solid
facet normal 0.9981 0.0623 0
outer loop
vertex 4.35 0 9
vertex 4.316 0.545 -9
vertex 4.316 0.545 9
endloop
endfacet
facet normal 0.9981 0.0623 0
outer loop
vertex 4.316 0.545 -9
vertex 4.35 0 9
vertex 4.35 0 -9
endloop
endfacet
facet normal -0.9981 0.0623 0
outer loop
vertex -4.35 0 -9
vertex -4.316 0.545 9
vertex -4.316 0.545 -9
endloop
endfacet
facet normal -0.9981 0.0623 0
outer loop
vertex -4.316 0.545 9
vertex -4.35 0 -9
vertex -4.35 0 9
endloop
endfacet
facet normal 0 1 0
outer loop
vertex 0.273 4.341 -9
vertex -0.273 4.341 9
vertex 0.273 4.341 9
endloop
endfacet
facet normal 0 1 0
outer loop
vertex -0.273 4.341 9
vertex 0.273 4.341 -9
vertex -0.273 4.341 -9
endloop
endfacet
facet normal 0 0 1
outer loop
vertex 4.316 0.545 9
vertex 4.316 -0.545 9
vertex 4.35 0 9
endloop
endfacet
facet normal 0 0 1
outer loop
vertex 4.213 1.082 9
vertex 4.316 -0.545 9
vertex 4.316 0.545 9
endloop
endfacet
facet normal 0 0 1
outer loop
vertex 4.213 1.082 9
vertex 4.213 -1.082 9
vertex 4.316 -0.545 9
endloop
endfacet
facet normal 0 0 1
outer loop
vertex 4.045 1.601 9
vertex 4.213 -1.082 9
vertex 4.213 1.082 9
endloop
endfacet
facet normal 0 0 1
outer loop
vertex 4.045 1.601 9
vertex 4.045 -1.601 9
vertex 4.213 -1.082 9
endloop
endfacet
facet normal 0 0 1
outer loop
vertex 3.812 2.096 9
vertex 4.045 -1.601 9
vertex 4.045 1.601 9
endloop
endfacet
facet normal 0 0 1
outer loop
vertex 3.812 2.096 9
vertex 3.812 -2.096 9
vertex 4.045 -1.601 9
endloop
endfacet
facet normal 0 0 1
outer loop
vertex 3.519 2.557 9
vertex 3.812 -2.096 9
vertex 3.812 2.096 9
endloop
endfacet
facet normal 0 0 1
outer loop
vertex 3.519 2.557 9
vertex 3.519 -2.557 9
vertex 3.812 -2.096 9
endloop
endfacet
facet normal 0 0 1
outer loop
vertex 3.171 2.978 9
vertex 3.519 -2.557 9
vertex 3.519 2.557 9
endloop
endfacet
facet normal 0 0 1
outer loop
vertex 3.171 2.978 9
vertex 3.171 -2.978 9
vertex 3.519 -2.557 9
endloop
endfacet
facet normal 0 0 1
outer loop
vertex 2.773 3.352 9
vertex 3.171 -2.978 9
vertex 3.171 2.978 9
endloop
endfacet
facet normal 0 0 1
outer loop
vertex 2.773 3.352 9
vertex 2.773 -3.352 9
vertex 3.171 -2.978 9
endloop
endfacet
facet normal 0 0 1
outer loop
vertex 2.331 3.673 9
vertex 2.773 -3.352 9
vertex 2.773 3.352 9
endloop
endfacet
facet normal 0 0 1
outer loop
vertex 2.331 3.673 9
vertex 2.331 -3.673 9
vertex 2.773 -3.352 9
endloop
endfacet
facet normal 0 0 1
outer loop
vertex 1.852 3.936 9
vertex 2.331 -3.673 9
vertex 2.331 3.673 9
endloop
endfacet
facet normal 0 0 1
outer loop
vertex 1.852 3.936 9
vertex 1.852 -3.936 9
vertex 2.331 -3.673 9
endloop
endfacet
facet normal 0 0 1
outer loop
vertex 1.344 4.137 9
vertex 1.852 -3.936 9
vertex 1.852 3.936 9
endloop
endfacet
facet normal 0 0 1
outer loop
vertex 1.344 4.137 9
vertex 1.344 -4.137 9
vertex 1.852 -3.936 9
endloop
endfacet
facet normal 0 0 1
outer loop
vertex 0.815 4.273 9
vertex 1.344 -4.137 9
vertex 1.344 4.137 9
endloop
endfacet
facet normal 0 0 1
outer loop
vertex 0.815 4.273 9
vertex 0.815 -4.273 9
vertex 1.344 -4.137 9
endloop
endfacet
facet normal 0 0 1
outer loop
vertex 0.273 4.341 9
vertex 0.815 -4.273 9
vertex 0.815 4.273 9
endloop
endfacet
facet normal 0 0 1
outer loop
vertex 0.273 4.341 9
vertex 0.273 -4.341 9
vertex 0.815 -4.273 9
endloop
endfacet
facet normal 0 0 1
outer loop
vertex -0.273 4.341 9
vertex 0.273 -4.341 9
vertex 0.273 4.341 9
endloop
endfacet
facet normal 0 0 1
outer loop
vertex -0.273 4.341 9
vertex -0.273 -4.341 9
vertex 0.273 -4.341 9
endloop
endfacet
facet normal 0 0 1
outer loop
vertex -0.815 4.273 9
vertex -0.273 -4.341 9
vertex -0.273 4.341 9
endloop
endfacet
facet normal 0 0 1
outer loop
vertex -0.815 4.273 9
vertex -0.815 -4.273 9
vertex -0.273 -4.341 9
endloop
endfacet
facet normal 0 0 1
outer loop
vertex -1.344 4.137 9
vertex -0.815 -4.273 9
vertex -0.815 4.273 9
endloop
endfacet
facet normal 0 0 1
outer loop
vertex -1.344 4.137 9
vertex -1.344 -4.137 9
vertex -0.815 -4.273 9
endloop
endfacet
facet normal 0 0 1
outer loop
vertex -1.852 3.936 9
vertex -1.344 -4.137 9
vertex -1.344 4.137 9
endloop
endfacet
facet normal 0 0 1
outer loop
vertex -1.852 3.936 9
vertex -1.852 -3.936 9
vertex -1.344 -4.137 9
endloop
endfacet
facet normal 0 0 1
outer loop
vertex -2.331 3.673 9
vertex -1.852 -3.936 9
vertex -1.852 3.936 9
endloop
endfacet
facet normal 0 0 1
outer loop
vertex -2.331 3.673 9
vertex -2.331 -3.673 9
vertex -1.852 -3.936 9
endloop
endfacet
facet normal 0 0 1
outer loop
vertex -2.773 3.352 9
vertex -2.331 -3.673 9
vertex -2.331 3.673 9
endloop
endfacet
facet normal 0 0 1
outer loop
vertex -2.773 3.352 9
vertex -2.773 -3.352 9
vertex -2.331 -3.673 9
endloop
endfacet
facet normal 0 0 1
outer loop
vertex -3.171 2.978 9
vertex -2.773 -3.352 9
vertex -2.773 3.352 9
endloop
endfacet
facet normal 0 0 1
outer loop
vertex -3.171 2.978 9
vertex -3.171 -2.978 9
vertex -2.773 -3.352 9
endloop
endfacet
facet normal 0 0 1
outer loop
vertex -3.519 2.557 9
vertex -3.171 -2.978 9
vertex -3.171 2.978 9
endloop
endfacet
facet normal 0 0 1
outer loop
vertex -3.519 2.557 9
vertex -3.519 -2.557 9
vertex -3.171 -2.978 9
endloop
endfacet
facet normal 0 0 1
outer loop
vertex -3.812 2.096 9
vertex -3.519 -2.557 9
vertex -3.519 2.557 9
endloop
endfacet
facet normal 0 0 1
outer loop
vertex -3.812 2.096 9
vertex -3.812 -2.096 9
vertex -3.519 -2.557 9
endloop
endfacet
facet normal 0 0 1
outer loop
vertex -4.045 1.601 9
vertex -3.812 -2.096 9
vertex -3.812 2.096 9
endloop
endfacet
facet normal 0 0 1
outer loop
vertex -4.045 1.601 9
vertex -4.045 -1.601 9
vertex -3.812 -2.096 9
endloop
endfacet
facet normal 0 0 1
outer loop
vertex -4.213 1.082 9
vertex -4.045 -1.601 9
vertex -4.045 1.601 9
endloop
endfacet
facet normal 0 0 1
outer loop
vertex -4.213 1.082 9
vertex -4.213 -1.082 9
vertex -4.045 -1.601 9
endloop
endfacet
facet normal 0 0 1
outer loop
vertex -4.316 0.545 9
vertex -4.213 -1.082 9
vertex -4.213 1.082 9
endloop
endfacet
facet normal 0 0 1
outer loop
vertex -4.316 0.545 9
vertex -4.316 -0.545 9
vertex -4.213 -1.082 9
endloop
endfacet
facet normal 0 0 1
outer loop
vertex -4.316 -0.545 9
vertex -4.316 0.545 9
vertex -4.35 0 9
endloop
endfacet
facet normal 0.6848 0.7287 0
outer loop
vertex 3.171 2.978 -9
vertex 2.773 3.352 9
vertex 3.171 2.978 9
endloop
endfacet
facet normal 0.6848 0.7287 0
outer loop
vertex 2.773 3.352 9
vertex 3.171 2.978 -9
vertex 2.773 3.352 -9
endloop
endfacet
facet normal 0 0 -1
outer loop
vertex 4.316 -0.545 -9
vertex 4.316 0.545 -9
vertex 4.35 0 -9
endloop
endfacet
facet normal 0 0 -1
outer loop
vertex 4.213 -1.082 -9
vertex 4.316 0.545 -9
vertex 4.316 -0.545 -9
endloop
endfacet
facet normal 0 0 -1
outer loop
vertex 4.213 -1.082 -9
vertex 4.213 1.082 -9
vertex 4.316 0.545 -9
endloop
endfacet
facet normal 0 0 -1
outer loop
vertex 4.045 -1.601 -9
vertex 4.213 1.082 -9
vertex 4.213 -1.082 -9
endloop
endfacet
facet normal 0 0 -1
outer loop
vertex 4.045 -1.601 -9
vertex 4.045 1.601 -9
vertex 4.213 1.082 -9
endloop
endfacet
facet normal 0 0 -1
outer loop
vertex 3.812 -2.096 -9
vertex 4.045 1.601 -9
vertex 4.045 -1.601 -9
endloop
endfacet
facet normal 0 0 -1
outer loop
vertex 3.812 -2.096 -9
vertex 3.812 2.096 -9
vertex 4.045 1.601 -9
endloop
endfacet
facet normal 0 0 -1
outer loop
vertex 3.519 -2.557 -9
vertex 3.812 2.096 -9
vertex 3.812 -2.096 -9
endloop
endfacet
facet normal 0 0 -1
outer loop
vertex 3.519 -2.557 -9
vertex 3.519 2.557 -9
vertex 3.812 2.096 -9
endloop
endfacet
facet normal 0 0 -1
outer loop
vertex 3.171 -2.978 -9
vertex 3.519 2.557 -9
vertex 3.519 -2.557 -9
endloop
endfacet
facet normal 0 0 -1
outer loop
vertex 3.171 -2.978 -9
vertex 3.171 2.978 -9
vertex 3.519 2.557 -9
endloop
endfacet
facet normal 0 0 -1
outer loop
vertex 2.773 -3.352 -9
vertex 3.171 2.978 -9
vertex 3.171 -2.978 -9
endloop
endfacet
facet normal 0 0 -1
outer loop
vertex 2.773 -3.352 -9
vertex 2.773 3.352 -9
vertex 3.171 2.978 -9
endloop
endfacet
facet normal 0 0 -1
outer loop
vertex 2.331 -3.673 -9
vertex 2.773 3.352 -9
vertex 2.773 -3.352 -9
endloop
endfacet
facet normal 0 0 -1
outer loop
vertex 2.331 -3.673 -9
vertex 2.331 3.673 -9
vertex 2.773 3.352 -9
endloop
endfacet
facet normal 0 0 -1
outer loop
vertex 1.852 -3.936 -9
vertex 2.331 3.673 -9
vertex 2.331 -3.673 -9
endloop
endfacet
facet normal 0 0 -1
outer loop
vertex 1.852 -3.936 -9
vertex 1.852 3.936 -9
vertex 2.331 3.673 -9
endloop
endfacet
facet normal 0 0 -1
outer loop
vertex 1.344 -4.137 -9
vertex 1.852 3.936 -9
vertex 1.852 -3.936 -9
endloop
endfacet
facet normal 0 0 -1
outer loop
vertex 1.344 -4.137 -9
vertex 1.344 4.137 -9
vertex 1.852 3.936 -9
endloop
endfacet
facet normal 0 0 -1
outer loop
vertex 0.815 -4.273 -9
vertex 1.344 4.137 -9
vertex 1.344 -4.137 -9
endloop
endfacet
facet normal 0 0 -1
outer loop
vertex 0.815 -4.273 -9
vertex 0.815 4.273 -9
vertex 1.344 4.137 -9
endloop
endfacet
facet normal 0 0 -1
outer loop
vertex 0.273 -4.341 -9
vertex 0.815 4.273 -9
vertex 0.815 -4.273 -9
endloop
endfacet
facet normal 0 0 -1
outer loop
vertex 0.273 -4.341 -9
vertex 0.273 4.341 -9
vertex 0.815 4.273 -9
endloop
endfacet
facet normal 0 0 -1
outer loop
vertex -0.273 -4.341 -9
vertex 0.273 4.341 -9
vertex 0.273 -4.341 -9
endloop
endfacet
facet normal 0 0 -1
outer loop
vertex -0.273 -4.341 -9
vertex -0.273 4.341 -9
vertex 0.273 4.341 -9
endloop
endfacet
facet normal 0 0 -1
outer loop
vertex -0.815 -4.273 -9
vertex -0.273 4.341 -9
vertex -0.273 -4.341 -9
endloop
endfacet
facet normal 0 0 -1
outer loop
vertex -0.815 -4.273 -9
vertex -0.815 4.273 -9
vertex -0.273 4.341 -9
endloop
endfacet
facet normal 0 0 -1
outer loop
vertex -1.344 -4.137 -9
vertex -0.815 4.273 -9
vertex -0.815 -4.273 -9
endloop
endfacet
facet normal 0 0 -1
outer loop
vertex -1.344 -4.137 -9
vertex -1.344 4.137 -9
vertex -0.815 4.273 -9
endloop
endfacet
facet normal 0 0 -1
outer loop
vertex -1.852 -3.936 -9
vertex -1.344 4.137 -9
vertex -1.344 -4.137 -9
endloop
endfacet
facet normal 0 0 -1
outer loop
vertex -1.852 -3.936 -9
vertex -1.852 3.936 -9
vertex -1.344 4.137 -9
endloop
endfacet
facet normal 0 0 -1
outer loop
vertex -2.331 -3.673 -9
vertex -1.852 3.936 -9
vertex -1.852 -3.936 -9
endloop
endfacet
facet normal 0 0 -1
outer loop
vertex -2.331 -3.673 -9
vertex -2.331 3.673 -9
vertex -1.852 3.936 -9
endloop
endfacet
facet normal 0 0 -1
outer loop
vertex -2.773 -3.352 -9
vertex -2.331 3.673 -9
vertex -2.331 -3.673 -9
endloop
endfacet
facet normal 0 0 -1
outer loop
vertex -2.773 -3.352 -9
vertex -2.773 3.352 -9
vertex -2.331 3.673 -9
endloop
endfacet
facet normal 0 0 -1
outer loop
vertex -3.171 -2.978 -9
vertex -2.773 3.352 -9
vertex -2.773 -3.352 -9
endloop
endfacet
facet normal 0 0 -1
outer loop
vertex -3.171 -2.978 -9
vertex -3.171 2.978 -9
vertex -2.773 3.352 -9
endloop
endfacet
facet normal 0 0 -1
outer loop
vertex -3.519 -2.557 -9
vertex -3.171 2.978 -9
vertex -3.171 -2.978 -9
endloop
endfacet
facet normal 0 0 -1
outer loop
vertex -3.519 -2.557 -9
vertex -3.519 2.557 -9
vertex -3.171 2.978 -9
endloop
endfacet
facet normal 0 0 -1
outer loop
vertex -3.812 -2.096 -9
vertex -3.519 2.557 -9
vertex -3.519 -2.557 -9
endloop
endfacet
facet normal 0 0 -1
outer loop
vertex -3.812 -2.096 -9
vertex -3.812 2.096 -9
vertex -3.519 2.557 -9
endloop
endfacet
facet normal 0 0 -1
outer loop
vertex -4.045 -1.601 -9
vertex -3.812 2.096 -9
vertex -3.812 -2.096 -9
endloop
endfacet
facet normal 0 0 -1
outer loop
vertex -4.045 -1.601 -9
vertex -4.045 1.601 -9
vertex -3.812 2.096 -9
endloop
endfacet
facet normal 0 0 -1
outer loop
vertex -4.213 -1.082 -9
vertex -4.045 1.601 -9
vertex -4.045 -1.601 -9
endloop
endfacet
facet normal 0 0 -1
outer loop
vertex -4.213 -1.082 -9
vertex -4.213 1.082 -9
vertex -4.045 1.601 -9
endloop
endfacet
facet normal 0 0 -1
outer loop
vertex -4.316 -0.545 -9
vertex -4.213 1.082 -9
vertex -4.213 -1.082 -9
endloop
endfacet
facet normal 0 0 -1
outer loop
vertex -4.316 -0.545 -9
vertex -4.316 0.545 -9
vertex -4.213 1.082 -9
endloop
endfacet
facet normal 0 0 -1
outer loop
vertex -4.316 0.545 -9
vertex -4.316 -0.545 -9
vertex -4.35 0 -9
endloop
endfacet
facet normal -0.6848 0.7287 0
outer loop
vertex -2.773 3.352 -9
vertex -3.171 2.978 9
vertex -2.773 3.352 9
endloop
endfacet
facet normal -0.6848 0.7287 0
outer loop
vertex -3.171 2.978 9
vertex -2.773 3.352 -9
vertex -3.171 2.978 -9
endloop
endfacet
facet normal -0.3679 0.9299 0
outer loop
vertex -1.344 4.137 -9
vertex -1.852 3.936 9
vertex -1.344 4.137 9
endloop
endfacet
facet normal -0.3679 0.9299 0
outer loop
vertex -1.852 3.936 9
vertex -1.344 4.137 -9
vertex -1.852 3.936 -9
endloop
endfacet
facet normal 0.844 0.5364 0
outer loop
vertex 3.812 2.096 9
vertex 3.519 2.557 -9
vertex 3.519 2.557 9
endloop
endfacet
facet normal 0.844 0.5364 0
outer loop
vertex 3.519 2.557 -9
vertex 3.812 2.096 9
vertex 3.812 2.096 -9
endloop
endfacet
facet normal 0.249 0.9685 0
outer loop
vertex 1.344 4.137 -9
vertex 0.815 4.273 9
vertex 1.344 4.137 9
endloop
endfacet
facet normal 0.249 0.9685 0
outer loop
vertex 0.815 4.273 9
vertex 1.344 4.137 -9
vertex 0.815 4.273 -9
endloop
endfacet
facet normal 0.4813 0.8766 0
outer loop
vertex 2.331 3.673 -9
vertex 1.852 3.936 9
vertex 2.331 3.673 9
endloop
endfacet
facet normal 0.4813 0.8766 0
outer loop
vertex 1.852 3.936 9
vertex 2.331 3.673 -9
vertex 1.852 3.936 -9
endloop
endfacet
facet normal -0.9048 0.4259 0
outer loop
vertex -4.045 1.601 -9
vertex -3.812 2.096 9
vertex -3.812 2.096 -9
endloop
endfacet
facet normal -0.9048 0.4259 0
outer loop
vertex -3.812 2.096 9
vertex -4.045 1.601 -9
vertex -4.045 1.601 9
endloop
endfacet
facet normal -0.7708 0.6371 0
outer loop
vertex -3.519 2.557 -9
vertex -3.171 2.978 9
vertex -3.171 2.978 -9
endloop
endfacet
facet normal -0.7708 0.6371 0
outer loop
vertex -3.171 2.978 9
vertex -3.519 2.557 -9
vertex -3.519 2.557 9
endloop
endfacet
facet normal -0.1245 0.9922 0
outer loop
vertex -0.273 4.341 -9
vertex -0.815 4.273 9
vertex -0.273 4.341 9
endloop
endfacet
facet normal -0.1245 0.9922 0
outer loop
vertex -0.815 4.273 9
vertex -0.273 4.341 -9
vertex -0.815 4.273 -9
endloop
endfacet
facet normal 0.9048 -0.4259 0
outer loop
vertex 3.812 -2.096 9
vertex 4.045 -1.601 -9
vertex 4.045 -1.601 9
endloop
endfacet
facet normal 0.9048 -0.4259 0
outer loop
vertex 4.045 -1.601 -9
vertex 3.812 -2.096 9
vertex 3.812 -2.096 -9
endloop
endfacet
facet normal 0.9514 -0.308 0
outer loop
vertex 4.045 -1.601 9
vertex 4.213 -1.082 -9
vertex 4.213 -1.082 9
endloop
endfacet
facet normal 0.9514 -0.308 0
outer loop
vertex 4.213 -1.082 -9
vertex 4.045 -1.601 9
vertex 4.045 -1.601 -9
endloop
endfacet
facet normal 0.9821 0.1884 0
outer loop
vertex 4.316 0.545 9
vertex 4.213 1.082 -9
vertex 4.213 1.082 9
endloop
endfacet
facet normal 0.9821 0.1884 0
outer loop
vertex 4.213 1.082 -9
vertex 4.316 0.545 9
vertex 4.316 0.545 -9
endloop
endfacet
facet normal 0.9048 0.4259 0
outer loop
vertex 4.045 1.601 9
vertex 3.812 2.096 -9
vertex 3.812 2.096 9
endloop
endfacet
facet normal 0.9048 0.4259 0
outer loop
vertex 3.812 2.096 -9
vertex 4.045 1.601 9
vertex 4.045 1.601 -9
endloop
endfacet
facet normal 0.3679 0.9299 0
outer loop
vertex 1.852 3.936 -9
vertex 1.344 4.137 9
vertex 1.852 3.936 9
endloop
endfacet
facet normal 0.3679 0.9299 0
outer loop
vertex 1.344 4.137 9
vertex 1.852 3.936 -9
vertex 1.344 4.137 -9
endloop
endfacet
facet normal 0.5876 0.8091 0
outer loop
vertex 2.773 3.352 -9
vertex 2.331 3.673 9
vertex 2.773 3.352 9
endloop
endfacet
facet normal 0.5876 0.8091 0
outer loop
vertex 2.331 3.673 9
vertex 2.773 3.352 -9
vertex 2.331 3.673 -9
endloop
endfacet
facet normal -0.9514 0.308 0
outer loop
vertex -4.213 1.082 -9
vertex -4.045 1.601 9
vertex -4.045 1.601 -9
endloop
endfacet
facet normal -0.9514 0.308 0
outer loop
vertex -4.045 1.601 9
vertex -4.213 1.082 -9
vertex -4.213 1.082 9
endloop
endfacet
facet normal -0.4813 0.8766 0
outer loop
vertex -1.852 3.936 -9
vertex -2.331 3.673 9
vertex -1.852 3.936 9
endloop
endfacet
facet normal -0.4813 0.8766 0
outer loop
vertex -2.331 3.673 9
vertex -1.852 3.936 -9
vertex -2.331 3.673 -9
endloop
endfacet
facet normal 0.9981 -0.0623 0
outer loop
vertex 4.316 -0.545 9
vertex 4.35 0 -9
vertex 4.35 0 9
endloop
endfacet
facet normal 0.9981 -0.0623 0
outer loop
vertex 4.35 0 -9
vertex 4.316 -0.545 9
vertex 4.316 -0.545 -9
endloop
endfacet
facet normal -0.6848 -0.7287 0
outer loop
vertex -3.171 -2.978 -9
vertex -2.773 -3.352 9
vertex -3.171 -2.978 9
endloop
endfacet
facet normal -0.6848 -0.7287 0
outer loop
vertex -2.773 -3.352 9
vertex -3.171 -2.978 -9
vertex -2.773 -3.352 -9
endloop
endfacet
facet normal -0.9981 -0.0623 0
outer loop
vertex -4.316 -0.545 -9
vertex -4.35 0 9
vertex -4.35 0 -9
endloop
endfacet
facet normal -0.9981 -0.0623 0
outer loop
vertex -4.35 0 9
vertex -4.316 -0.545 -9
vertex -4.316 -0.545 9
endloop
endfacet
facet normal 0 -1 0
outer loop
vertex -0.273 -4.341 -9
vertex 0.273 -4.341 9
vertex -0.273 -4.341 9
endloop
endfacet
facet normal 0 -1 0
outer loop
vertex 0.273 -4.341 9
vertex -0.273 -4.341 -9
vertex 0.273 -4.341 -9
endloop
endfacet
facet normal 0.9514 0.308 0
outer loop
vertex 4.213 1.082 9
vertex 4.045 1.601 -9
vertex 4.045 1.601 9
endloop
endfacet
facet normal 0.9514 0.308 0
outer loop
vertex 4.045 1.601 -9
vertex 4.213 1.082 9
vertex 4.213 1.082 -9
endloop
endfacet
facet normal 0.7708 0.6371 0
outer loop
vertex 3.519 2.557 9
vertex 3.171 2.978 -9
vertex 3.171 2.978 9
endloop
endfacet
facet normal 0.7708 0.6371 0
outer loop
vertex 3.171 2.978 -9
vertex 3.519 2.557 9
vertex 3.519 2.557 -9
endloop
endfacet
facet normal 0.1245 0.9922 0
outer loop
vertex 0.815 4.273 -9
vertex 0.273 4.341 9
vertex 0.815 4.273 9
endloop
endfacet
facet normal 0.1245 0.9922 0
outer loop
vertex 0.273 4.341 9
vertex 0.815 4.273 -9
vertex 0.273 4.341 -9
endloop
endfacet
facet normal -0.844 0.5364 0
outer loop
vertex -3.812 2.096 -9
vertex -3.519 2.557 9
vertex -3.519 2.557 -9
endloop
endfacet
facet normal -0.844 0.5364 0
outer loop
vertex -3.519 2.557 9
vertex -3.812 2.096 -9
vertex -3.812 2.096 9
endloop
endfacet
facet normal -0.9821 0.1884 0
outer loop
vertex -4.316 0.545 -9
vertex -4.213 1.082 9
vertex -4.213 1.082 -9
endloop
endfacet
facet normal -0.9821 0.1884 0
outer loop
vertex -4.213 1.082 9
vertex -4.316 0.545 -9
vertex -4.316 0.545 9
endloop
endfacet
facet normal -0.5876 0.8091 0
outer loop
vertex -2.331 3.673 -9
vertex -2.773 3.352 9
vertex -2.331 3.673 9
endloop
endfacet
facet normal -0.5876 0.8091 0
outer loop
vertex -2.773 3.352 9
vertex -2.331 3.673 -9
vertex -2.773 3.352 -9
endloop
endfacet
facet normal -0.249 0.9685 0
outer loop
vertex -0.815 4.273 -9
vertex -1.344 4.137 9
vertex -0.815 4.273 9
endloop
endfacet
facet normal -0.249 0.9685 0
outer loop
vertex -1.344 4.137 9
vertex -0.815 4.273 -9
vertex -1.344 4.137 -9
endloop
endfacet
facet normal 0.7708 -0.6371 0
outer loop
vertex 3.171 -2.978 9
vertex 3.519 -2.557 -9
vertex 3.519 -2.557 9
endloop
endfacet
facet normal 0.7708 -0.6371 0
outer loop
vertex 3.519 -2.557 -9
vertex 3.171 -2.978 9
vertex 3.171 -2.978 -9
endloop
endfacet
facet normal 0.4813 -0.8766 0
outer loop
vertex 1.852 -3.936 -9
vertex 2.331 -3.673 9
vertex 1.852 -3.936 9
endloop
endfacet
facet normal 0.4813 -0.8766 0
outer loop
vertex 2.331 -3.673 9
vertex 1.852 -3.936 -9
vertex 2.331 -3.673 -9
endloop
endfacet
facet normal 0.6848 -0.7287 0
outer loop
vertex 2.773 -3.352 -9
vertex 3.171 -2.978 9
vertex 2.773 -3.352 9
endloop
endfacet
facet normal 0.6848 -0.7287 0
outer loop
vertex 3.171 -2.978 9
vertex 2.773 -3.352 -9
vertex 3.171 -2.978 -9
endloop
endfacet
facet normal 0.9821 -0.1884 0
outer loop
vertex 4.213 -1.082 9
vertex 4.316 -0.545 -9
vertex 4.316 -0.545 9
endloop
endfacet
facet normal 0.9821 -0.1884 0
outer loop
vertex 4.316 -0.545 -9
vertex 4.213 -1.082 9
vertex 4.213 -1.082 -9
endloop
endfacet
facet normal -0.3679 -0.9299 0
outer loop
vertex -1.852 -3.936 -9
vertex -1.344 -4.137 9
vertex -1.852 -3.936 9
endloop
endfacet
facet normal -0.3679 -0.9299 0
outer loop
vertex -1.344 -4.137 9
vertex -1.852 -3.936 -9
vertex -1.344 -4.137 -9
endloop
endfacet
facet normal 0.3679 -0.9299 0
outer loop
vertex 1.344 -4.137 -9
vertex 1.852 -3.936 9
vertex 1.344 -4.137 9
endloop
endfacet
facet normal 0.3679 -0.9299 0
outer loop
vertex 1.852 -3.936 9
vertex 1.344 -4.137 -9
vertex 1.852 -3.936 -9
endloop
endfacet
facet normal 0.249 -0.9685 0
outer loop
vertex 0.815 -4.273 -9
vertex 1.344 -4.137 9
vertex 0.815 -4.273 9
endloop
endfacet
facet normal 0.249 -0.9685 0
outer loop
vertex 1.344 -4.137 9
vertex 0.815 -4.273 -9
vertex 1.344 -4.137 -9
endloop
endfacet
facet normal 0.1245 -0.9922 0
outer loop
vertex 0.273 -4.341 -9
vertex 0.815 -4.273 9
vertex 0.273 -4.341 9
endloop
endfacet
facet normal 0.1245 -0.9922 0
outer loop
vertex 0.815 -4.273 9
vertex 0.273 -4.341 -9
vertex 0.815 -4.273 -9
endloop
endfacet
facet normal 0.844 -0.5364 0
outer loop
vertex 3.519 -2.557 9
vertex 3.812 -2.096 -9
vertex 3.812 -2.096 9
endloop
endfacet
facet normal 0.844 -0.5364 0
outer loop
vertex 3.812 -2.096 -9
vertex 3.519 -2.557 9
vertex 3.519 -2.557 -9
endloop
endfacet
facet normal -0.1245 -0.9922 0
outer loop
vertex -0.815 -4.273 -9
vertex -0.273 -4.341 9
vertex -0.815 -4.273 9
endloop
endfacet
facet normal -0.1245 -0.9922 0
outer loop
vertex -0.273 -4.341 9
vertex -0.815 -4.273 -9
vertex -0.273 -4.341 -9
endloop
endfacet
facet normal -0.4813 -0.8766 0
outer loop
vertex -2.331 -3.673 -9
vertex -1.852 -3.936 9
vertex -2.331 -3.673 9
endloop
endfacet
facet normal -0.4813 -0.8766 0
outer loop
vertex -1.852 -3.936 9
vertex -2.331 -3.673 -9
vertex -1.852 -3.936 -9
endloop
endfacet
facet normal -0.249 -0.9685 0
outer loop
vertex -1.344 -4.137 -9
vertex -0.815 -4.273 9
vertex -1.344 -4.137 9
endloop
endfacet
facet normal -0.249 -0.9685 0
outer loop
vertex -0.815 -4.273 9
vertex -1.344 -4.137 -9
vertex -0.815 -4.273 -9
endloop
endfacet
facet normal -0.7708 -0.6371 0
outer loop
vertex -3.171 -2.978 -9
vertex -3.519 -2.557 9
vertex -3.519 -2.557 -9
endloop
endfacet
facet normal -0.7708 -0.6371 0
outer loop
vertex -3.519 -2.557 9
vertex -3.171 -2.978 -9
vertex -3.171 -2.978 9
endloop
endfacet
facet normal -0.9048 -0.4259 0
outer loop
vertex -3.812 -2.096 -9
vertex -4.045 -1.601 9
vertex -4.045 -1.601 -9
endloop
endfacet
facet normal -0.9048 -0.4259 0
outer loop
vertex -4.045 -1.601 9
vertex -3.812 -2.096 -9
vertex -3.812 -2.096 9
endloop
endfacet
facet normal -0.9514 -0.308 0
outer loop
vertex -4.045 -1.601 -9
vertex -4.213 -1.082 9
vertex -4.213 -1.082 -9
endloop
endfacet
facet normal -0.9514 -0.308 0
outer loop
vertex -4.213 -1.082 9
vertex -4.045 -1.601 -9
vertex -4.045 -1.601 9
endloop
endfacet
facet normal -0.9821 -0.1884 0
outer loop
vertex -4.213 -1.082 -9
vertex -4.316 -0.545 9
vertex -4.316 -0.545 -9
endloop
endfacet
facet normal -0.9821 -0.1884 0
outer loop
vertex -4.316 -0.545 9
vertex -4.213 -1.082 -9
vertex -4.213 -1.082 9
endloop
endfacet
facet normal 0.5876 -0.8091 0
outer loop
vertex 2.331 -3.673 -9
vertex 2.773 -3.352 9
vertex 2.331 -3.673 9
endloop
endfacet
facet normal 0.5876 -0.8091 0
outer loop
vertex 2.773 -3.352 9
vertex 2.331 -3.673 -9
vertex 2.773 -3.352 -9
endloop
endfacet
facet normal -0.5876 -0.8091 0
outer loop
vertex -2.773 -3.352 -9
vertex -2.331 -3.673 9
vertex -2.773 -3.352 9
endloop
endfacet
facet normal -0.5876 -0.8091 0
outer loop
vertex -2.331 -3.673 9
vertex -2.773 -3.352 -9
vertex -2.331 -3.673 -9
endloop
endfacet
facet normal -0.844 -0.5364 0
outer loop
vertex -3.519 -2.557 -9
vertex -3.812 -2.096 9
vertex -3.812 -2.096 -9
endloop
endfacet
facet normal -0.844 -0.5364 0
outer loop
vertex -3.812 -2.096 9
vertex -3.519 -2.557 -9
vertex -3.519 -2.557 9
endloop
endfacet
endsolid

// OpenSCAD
$fn = 50;


difference() {
	union() {
		translate(v = [0, 0, -9.0000000000]) {
			cylinder(h = 18, r = 4.3500000000);
		}
	}
	union() {
		translate(v = [0, 0, -100.0000000000]) {
			cylinder(h = 200, r = 0);
		}
	}
}
